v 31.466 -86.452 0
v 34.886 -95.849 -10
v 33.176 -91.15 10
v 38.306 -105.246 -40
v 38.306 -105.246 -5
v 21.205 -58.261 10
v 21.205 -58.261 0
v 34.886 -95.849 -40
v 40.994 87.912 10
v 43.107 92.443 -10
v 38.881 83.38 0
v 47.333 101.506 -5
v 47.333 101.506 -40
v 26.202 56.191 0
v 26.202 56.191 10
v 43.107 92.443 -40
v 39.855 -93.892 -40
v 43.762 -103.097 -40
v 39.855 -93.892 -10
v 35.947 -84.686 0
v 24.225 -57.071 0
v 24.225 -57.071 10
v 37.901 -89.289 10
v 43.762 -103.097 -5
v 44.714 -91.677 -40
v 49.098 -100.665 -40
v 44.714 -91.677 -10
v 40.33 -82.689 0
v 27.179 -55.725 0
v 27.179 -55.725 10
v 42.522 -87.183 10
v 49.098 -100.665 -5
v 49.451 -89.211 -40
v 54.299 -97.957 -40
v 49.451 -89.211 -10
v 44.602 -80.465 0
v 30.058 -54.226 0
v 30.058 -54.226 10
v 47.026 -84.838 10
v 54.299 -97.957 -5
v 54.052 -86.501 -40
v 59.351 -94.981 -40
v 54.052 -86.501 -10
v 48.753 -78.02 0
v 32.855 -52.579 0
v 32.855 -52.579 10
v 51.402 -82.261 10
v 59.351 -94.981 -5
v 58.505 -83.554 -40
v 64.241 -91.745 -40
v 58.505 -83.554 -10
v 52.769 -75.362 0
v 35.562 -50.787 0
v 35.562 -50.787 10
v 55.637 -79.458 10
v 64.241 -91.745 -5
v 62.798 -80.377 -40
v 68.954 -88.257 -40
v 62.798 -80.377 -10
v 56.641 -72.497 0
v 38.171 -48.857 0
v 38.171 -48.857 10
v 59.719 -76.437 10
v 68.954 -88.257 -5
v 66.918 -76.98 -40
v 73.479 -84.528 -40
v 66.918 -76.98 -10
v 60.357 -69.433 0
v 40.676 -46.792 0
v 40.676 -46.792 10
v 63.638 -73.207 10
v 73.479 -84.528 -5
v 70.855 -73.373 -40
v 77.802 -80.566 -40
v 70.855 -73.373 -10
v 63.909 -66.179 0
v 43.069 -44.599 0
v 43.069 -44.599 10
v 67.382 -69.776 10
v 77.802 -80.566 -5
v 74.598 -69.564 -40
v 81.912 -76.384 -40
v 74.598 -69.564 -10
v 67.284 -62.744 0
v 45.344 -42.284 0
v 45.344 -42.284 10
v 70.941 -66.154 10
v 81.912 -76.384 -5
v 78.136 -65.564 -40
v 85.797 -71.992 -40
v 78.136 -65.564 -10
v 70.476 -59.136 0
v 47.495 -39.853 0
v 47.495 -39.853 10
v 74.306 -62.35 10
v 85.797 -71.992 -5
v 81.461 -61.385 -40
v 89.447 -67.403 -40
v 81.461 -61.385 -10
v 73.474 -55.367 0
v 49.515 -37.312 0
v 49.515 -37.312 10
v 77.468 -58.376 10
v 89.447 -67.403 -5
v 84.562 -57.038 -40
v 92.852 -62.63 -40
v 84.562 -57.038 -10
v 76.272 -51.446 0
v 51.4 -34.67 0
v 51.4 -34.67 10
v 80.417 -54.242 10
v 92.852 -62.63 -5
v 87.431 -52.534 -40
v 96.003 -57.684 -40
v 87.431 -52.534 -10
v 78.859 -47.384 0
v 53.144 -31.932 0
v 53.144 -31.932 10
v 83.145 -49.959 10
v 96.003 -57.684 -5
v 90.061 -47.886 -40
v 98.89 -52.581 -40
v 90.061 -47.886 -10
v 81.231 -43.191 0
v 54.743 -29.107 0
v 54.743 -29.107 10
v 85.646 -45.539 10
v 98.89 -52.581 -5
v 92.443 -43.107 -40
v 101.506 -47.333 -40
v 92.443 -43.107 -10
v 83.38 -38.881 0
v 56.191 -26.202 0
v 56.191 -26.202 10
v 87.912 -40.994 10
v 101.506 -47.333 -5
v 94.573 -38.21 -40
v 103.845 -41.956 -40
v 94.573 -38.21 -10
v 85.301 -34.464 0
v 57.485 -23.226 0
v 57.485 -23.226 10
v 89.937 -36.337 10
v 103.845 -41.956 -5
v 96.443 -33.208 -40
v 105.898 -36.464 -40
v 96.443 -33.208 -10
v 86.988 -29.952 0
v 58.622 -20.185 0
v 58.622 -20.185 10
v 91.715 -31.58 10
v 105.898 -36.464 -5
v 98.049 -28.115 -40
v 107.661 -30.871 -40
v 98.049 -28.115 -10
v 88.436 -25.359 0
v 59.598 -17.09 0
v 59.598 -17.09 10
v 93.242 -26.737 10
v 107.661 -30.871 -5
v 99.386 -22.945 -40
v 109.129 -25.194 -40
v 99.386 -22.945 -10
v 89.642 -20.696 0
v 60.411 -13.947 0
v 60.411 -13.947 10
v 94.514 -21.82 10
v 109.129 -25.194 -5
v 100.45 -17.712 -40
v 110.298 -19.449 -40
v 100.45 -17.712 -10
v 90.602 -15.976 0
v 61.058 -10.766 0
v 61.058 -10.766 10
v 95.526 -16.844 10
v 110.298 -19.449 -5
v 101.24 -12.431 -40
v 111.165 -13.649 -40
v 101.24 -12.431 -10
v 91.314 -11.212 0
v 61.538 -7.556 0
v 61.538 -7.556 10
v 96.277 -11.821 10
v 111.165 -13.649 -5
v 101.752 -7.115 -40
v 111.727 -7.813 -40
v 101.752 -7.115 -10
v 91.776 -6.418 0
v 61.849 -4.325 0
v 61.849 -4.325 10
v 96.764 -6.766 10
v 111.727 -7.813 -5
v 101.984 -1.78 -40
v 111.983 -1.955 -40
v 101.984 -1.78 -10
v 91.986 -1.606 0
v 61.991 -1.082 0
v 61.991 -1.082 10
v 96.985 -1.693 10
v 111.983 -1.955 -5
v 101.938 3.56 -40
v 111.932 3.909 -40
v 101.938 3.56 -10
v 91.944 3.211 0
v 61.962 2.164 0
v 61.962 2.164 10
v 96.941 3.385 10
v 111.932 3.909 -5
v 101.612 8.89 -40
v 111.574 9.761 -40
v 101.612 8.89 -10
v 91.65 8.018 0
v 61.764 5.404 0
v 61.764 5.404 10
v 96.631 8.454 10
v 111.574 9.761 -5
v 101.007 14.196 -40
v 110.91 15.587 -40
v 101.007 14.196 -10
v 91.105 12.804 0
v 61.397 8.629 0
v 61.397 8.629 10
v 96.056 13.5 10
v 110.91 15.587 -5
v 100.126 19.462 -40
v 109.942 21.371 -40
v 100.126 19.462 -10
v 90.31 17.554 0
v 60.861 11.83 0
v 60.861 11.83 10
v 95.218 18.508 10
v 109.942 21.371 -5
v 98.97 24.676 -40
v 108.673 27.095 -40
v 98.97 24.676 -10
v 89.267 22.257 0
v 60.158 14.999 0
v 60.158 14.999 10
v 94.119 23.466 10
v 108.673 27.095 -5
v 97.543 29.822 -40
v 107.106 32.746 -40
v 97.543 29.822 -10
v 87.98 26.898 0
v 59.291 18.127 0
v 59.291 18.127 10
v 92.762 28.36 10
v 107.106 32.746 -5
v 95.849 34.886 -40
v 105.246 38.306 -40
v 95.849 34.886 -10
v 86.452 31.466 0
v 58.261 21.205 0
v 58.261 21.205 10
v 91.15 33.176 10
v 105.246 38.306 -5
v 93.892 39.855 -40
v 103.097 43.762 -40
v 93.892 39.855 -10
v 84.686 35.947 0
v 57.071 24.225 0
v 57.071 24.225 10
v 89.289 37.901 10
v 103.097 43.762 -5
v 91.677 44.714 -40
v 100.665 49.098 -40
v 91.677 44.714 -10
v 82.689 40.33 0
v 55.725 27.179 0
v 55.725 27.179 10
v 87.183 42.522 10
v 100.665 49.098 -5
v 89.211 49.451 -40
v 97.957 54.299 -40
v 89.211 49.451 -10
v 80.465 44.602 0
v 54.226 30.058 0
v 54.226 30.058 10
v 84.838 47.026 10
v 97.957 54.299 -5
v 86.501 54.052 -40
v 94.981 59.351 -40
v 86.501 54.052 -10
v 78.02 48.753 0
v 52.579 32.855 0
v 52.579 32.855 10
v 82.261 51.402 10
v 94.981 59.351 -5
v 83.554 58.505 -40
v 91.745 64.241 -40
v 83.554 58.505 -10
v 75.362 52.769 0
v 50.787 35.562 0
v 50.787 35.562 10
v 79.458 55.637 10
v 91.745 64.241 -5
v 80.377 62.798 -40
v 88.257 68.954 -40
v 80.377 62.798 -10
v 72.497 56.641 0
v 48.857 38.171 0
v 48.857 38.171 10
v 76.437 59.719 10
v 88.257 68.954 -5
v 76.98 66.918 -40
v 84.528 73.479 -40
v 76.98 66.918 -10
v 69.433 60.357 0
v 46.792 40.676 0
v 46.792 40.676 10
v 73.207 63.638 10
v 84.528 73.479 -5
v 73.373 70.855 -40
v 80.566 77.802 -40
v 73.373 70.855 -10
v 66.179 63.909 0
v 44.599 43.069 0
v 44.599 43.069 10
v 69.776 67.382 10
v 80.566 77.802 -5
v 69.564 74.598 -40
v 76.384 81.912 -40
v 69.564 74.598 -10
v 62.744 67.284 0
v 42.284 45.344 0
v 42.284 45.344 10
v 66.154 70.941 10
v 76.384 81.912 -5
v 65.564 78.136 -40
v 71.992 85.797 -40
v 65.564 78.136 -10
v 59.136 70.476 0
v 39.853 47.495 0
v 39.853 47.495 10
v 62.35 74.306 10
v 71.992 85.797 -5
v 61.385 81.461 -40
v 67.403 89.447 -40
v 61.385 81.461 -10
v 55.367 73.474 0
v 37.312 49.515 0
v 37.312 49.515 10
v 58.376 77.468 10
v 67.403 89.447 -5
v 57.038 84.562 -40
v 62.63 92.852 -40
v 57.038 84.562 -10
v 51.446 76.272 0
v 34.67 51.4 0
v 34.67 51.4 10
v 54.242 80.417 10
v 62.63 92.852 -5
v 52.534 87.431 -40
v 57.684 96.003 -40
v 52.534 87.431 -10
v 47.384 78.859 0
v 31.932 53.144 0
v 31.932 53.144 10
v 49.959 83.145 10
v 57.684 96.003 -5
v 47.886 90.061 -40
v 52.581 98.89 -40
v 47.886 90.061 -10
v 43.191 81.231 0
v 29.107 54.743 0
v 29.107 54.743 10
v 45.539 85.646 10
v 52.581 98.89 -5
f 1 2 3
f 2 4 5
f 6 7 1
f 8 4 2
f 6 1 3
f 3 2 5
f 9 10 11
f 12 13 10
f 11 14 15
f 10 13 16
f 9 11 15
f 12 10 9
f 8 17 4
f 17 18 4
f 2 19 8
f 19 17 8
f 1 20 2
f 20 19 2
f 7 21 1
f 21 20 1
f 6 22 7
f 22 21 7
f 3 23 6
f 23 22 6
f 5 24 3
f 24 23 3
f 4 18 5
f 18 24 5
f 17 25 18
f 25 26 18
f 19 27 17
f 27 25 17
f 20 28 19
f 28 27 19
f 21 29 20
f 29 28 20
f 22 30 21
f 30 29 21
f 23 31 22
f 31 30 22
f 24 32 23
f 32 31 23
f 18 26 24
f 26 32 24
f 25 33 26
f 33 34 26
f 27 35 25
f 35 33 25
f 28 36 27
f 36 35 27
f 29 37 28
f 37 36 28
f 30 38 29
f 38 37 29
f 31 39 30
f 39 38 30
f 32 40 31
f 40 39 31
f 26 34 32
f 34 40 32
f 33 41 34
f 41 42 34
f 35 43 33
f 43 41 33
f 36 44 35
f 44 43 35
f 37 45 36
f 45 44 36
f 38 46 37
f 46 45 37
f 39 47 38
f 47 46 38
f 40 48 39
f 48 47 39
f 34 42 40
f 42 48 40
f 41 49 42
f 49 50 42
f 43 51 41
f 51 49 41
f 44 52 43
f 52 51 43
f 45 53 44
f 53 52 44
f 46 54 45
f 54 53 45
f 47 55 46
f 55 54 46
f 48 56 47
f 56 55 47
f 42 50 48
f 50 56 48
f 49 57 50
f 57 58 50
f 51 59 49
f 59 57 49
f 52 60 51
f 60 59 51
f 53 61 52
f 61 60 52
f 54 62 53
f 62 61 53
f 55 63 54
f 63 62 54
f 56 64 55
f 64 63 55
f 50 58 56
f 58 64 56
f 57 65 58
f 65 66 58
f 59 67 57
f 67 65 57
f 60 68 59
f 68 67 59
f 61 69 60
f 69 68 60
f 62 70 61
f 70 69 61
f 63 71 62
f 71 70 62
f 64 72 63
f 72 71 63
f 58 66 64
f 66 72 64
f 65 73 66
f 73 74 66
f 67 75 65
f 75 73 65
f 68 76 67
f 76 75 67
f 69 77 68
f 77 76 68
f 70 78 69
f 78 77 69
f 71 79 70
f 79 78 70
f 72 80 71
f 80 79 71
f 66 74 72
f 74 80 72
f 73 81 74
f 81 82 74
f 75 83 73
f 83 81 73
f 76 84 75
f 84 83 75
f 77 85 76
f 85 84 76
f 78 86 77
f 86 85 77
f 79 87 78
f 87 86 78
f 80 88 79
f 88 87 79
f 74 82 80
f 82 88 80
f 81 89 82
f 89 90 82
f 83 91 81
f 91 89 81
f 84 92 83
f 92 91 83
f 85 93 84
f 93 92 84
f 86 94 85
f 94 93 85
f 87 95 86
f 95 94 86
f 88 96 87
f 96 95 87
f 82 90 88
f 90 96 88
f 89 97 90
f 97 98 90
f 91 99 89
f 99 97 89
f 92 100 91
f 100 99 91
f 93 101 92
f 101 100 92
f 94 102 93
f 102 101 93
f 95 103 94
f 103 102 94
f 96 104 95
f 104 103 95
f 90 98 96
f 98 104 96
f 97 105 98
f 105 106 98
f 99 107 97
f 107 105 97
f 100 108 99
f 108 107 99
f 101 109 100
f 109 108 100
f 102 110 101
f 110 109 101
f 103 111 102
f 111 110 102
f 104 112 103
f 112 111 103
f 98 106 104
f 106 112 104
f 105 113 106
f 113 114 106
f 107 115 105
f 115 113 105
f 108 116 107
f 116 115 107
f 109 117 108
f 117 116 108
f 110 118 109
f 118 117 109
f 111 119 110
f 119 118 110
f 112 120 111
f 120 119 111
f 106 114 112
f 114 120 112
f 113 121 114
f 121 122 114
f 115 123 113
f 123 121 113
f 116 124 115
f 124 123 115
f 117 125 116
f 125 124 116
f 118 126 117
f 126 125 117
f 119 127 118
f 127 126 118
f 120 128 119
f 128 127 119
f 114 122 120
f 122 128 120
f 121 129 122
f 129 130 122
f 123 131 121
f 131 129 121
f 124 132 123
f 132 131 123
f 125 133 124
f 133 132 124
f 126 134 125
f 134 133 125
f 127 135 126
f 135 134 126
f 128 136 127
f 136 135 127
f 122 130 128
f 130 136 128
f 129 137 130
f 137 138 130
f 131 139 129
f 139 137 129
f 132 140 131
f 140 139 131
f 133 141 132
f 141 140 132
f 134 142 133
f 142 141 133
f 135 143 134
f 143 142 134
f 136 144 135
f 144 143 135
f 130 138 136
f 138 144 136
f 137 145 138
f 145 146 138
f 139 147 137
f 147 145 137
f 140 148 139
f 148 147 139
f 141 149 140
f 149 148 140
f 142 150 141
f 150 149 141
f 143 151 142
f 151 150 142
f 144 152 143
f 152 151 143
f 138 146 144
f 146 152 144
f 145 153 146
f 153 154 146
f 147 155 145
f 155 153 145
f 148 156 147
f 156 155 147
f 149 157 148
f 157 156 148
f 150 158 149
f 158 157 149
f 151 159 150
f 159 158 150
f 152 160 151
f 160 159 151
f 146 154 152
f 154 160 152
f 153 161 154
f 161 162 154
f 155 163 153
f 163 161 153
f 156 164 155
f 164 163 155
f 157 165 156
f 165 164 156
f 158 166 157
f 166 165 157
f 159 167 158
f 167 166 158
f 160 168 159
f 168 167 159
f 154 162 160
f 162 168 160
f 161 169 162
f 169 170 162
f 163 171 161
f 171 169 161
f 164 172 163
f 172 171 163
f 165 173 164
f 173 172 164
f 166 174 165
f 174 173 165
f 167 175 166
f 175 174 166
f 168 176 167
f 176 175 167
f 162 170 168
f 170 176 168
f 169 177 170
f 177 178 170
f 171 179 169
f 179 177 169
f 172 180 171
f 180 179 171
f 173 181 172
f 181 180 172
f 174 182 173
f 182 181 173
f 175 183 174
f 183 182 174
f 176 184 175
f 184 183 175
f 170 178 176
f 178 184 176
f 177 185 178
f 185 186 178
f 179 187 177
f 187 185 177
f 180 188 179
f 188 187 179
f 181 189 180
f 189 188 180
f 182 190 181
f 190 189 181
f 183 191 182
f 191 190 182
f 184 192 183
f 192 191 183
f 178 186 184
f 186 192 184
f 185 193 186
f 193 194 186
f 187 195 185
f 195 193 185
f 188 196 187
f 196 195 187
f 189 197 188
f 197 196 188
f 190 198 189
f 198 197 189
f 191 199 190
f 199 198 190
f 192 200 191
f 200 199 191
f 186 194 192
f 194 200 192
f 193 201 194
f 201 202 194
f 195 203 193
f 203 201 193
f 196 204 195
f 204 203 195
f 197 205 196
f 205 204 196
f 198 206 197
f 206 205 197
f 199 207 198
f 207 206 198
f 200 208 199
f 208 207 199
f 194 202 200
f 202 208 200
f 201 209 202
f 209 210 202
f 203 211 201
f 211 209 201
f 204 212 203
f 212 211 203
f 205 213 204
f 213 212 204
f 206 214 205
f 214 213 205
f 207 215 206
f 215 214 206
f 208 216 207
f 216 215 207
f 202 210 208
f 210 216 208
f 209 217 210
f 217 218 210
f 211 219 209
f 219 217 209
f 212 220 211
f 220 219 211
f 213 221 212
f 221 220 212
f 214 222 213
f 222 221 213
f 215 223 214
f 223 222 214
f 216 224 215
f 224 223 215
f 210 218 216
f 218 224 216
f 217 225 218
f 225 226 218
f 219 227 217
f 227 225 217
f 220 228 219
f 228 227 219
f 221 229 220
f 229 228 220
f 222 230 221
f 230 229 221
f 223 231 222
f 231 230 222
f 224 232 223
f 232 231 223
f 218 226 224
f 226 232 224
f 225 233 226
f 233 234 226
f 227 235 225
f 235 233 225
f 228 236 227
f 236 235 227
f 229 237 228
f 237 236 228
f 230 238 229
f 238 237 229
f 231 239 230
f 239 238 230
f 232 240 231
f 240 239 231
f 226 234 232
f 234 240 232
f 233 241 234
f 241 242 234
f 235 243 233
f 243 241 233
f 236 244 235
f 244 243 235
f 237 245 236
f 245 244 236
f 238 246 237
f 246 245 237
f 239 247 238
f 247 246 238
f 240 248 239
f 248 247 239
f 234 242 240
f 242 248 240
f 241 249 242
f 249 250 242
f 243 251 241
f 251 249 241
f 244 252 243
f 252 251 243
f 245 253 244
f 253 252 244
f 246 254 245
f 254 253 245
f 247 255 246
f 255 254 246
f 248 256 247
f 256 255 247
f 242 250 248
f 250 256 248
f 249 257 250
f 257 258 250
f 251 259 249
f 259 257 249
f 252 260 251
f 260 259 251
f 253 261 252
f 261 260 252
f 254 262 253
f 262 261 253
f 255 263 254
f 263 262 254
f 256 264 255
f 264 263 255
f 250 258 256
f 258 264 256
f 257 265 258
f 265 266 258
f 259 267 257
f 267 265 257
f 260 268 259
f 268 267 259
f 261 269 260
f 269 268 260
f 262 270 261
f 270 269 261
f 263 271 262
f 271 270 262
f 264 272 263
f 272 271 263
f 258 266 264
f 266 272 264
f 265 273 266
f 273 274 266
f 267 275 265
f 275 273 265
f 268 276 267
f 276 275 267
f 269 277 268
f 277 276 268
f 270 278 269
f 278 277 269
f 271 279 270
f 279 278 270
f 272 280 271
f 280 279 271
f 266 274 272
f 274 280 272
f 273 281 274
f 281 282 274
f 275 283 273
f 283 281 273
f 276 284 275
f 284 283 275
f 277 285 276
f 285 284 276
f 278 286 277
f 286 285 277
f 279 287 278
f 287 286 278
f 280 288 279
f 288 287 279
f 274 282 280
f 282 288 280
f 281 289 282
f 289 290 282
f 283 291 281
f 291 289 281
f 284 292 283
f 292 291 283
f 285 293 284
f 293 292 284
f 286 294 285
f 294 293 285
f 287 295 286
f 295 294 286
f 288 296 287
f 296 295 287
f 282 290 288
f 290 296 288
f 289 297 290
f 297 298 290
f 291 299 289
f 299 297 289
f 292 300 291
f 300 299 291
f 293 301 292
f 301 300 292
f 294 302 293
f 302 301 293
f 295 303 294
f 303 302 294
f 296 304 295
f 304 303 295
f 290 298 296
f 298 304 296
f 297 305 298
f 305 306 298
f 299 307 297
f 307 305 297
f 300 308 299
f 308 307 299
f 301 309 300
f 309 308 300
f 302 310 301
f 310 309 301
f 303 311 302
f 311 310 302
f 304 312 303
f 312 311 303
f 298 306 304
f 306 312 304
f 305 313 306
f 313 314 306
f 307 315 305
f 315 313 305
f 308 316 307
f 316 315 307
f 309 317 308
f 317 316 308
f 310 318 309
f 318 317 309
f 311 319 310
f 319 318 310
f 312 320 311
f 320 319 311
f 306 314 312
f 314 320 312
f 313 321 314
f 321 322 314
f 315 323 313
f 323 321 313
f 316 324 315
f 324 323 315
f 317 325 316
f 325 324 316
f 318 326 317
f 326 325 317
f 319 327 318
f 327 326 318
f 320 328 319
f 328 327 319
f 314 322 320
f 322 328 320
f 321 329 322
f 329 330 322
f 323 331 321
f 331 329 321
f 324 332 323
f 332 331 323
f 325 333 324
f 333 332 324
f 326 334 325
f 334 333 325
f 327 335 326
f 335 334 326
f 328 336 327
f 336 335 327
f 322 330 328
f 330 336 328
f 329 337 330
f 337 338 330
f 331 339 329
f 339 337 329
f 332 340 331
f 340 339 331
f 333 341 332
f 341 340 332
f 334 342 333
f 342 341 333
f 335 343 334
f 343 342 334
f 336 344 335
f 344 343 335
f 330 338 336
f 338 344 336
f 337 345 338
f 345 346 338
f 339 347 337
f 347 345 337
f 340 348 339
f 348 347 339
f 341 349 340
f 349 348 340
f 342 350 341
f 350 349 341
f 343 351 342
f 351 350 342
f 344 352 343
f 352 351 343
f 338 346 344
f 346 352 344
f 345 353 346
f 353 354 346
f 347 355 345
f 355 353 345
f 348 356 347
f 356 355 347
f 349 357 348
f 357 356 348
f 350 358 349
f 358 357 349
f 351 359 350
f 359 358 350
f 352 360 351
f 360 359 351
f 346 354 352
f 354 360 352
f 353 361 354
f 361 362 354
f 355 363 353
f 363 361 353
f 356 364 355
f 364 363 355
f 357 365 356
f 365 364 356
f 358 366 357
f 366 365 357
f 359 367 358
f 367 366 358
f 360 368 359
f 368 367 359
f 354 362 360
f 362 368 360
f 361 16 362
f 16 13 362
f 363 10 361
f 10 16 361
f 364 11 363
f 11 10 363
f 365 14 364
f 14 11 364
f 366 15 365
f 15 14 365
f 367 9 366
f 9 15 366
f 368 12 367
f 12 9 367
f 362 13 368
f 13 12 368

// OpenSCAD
// file: ieq30pro-dec-head.scad
// Defines the moving portion of the DEC axis,
// which has the dovetail saddle for holding a
// telescope atop the mount.

// dec_head accepts up to two children:
// 1) The first is centered on the plane of the base
//    of the dec_head, with z=0 and the clutch is
//    on the x-axis at y=0. Suitable for
//    weatherproofing items.
// 2) The second is placed into the plane of the
//    dovetail saddle, with the x-axis aligned with
//    the long direction of a dovetail.
//    Suitable for the telescope.

// Units: mm

use <chamfer.scad>
include <ieq30pro-dimensions.scad>
use <ieq30pro-clutch.scad>

dec_head() {
  translate([0,0,0]) #cube(10, center=true);
  translate([0,0,0]) #cube(10, center=false);
};

module dec_head() {
  base_r = dec_head_base_diam / 2;
  inner_r = dec_head_diam1 / 2;
  color(cast_iron_color) {
    difference() {
      union() {
        cylinder(h=dec_head_base_height, r=base_r);
      
        translate([0,0,dec_head_base_height])
          linear_extrude(
              height=dec_head_height,
              scale=dec_head_scale)
            dec_head_extrusion_profile();
      };
      dec_saddle_inverse();
      dec_slot_inverse();
      dec_head_clamp_screw_holes();
    };
  };

  translate([inner_r-2,0,0])
    rotate([90,0,90])
      clutch();
  
  echo("dec_head has", $children, "children");
  if ($children > 0) {
    children(0);
  }
  if ($children > 1) {
    raise_by = dec_head_base_height + dec_head_height
        - dec_saddle_depth + 0.01;
    translate([0,0,raise_by])
      rotate([0, 0, 90])
        children(1);
  }
}

module dec_saddle_inverse() {
  hw1 = dovetail_width / 2;
  hw2 = dec_saddle_width2 / 2;
  hw3 = dec_saddle_width1 / 2;
  dw = dec_saddle_width2 - dec_saddle_width1;
  raise_by = dec_head_base_height + dec_head_height
      - dec_saddle_depth + 0.01;
  
  translate([0,0,raise_by])
    rotate([90, 0, 0])
      translate([0,0,-dec_head_base_diam])
        linear_extrude(height=dec_head_base_diam*2)
          // Profile of a dovetail plate on one side, but
          // vertical on the other wide (where the mount
          // has screws to secure a dovetail plate).
          polygon([
            [0,0],
            [hw1, 0],
            [hw1 - dw, dec_saddle_depth],
            [-hw3, dec_saddle_depth],
            [-hw3, 0]
          ]);
}

module dec_slot_inverse() {
  r = dec_slot_corner_radius;
  hw = dec_slot_width / 2 - r;
  hl = dec_slot_len / 2 - r;
  raise_by = dec_head_base_height + dec_head_height
      - dec_saddle_depth + 0.01;

  translate([0,0,raise_by])
  linear_extrude(height=dec_saddle_depth)
    hull() {
      translate([hw,hl]) circle(r=r);
      translate([hw,-hl]) circle(r=r);
      translate([-hw,-hl]) circle(r=r);
      translate([-hw,hl]) circle(r=r);
    };
}

module dec_head_extrusion_profile() {
  s = dec_head_square/2;
  intersection() {
    union() {
      circle(r=dec_head_diam1/2);
      translate([-s, -s])
        square(size=[s, dec_head_square]);
    };
    circle(r=dec_head_base_diam/2);
  };
}

module dec_head_clamp_screw_holes() {
  raise_by = dec_head_base_height + dec_head_height
      - dec_head_clamp_screw_depth;
  y = dec_head_clamp_screw_spacing / 2;
  translate([0,y,raise_by])
    rotate([0, -90, 0])
      cylinder(h=dec_head_base_diam/2,
               r=dec_head_clamp_screw_diam/2);

  translate([0,-y,raise_by])
    rotate([0, -90, 0])
      cylinder(h=dec_head_base_diam/2,
               r=dec_head_clamp_screw_diam/2);
}
// file: ieq30pro-clutch.scad
include <ieq30pro-dimensions.scad>

clutch();

module clutch(handle_angle=0) {
  r = clutch_base_diameter/2;
  raise_by = clutch_base_height - r;
  translate([0,raise_by,0]) {
    // Extrusion out of the base
    color(cast_iron_color)
      clutch_base();

    // Handle, shaft and screw.
    translate([0,0,clutch_screw_length])
      rotate([0, 0, handle_angle])
        clutch_handle();
  };
};

module clutch_base(handle_angle) {
  linear_extrude(height=clutch_extrusion)
    union() {
      r = clutch_base_diameter/2;
      circle(r=r);

      w1 = clutch_flange_width;
      h1 = clutch_flange_height;
      w2 = clutch_base_diameter;
      h2 = clutch_base_height - r;

      translate([-w1/2, -h2, 0])
        square([w1,h1]);

      translate([-w2/2, -h2, 0])
        square([w2,h2]);
    };
};

module clutch_handle() {
  color(plastic_color) {
    radius = clutch_handle_base_diam / 2;
    hw = clutch_handle_width / 2;
    linear_extrude(height=clutch_handle_depth1)
      union() {
        circle(r=radius);
        translate([0,-hw])
          square([clutch_handle_length,
                  clutch_handle_width]);
      };

    len2 = clutch_handle_length - radius;
    drop = clutch_handle_depth2-clutch_handle_depth1;
    translate([0,0,-drop])
      linear_extrude(height=clutch_handle_depth2)
        translate([radius,-hw])
          square([len2, clutch_handle_width]);
  };
  
  // The screw head, mostly for decoration.
  color("silver") {
    r = clutch_screw_head_diam/2;
    w = r * 1.4;
    h = w/5;
    translate([0,0,clutch_handle_depth1])
      linear_extrude(height=1)
        difference() {
          circle(r=r);
          square([w,h], center=true);
          square([h,w], center=true);
        }
  };

  // The shaft that is rotated by the handle,
  // of which a little is visible between the
  // handle and the body of the axis.
  color("gold") {
    r = clutch_screw_head_diam/2;
    h = 10;
    translate([0,0, -(h-1)])
      linear_extrude(height=h)
        circle(r=r);
  }
};
// file: ieq30pro-ra-to-dec.scad
// Defines the moving portion of the RA axis,
// which includes the "non-moving" portion of
// the DEC axis of the iOptron iEQ30 Pro.

// ra_to_dec accepts two children:
// 1) attached to the coordinate frame of the moving
//    RA axis, with the bearing of the RA axis centered
//    on the xy plane at z=0, with positive z being
//    where the moving RA axis is located, and negative
//    z being where the stationary portion of the mount
//    is located.
// 2) attached the the coordinate frame of the moving
//    DEC axis, with the bearing of the DEC axis centered
//    on the xy plane at z=0, with positive z being
//    where the moving DEC axis is located, and negative
//    z being where the motor of the DEC axis is located.
// This allows for adding objects to the model by
// a "use" of this file.

// Units: mm

use <chamfer.scad>
include <ieq30pro-dimensions.scad>
use <ieq30pro-clutch.scad>
use <ieq30pro-dec-head.scad>

ra_and_dec($t * 360) {
  translate([0,0,0]) {
    echo("executing ra_and_dec child 1");
    color("blue")
      sphere(r=10);
  };
  color("red") linear_extrude(height=10) {  
    echo("executing ra_and_dec child 2");
    square(10, center=true);
  };
};

module ra_and_dec(dec_angle=0) {
  raise_dec = dec1_radius + ra1_base_to_dec;
  ra_to_dec();

//  echo("ra_and_dec has", $children, "children");

  translate([0, ra1_radius, raise_dec])
    rotate([-90,0,0])
      dec_body(dec_angle) {
        if ($children > 1) {
//          echo("has at least two children");
          children(1);
        }
      };

  // TODO Change coordinates of ra_and_dec so
  // that it rests on the z=0 plane natively.
  // this will make it easier to add children
  // to both the RA axis base and to the DEC
  // head.
  if ($children > 0) {
//    echo("has at least one child");
    #children(0);
  }
}

module ra_to_dec() {
  h1 = ra1_base_to_dec;
  h2 = 45 - h1;
  fillet_radius = ra1_radius - dec1_radius + 2;

  translate([0,0,h1]) {
    color(cast_iron_color) {
      difference() {
        union() {
          translate([0,0,-h1])
            cylinder(h=h1, r=ra1_radius);
          cylinder(h=h2, r=ra1_radius);
        };
        translate([0,ra1_radius,fillet_radius])
          rotate([90,0,0]) {
            translate([-ra1_radius,0,0])
              cylinder(h=ra1_diam, r=fillet_radius);
            translate([ra1_radius,0,0])
              cylinder(h=ra1_diam, r=fillet_radius);
          };
      };
    };
    translate([-(ra1_radius-5), 0, -h1])
      rotate([90,0,270])
      clutch();
  };
}

module dec_body(dec_angle=0) {
  rotate([180, 0, 0])
    dec_body_helper();
  translate([0, 0, dec2_len])
    rotate([0, 0, dec_angle])
      children();
}

module dec_body_helper() {
  total_dec_len =
    dec1_len + dec2_len + cw_cap_height +
    cw_cap_bevel_height;
  difference() {
    union() {
      color(cast_iron_color) {
        cylinder(h=dec1_len, r=dec1_radius);
        translate([0,0, -dec2_len])
          cylinder(h=dec2_len, r=dec2_radius);
      };
      // Cap on the end where the CW shaft is
      // screwed into the DEC body.
      color(plastic_color)
        translate([0, 0, dec1_len])
          union() {
            cylinder(h=cw_cap_height, r=dec1_radius);
            translate([0, 0, cw_cap_height])
              rotate_extrude()
                polygon([
                  [cw_cs_radius,0],
                  [dec1_radius,0],
                  [dec1_radius-10, cw_cap_bevel_height],
                  [cw_cs_radius,cw_cap_bevel_height]]);
          };
      dec_motor();
    };
    color(cast_iron_color)
      translate([0,0, -dec2_len-1])
        cylinder(h=total_dec_len+2,
                r=cw_thread_radius);
  };
}

module dec_motor() {
  w=dec_motor_w;
  h=dec_motor_h;
  z=dec_motor_z;
  
  translate([-w/2, dec_motor_z_offset, h - dec2_len + 0.01])
    rotate([-90,0,0]) {
      color(plastic_color) {
        intersection() {
          chamferCube(w,h,z,chamferHeight=12,
            chamferX=[0,0,1,0], chamferY=[0,0,0,0],
            chamferZ=[0,0,0,0]);
          chamferCube(w,h,z,chamferHeight=5,
            chamferX=[0,0,0,1], chamferY=[0,1,1,0],
            chamferZ=[0,0,0,0]);
        }
      };

      color("white") 
        translate([w/2, h/3,z])
          linear_extrude(height = 0.1)
            ioptron_logo();    
    };
}

module ioptron_logo() {
  font = "Liberation Sans";
  italic_font = str(font, ":style=Italic");
  text("iOptron", size=12, font=italic_font,
       halign="center", valign="bottom", $fn=16);
  translate([0, -4, 0])
    text("iEQ30-Pro", size=6, font=font,
         halign="center", valign="top", $fn=16);
}
// file: ieq30pro-dimensions.scad
// Units: mm

cast_iron_color = "bisque";//"gray";//"beige";
plastic_color = [0.1,0.1,0.1];
bearing_color = "silver";

////////////////////////////////////////////////////
// Diameter of dec body at bottom, near CW shaft.
dec1_diam = 67.66;
dec1_radius = dec1_diam / 2;

// Length of declination cylinder with dec1_diam.
dec1_len = 131.9;

// The black cap and the bottom of the dec body, where
// the counterweight shaft is attached.
cw_cap_height = 10;
cw_cap_bevel_height = 5;

// There is a countersink in the bottom of the DEC
// body to allow for the counterweight shaft.
cw_cs_diam = 23;
cw_cs_radius = cw_cs_diam / 2;

cw_thread_diam = 16;
cw_thread_radius = cw_thread_diam / 2;

////////////////////////////////////////////////////
// Diameter of the motor end of the DEC body.

dec2_diam = 97.4;  // +/- 0.3mm.
dec2_radius = dec2_diam / 2;
dec2_len = 25.4;

////////////////////////////////////////////////////
// Declination motor cover size.
dec_motor_w = 85.4;  // left-right on face with logo.
dec_motor_h = 68.4;  // up-down on face with logo.
dec_motor_z = 62.4;

// Distance away from bearing plane.
dec_motor_setback = 0.01;

////////////////////////////////////////////////////
// Min dist from face with logo to dec1 cylinder.
dec_motor_z2 = 42;
dec_motor_z_offset =
  dec1_radius + dec_motor_z2 - dec_motor_z;

////////////////////////////////////////////////////
// RA axis diameter at the bearing, where the moving
// and stationary parts meet.
ra1_diam = 120;  // +/- 0.3mm.
ra1_radius = ra1_diam / 2;

////////////////////////////////////////////////////
// Distance from edge of RA bearing to outside of
// DEC body, center of DEC axis, and outside of
// DEC gear cover.
ra1_base_to_dec = 21.5;
ra1_base_to_dec_center = ra1_base_to_dec + dec1_radius;
ra1_base_to_dec_gear_cover =
    ra1_base_to_dec_center - dec2_radius;

////////////////////////////////////////////////////
// Dimensions for the non-moving portion of the
// mount. Much less detail is needed here, so only
// a few objects are modeled.

// RA bearing cover diameter and length.
ra2_radius = ra1_radius;
ra2_len = 24.5;

// RA body becomes narrower.
ra3_radius = ra2_radius - 19.86;
ra3_len = 17.13;

ra_bearing_gap = 0.6;

////////////////////////////////////////////////////
// Dimensions for the DEC and RA clutches. They are
// mostly identical, except that the DEC clutch
// sticks out farther from the DEC head and its
// screw axis is a bit closer to the bearing gap.
// The model won't include the draft angle of the
// handle.

clutch_flange_width = 28;
clutch_flange_height = 5.75;
clutch_extrusion = 9.2; // from casting diam.
clutch_base_diameter = 18;
clutch_base_height = 19.75;
clutch_screw_length = 10.75; // casting to head.
clutch_screw_head_diam = 8.2;
clutch_handle_base_diam = 20.6;
clutch_handle_length = 38.9; // screw center to end.
clutch_handle_width = 8.75; // At widest.
clutch_handle_depth1 = 10.2;
clutch_handle_depth2 = 13.7;

////////////////////////////////////////////////////
// Dimensions for the DEC head (i.e. the part
// rotated by the DEC motor, which has the dove tail
// saddle for holding the telescope).

dec_head_base_diam = 97.66;
dec_head_base_radius = dec_head_base_diam / 2;
dec_head_base_height = 3.83;
dec_head_height = 46.3;  // Above base.
dec_head_diam1 = 89.5;  // At top of base.
dec_head_diam2 = 86.9;  // At top, due to draft angle.
dec_head_scale = dec_head_diam2 / dec_head_diam1;
dec_saddle_depth = 13.8;
dec_saddle_width1 = 43.95; // At top of saddle
dec_saddle_width2 = 46.66; // At bottom of saddle
dovetail_width = 45.25;
dec_slot_corner_radius = 5;
dec_slot_width = 60.4;
dec_slot_len = 25.6;
dec_head_square = 76;
dec_head_clamp_screw_diam = 7.8;  // OD
dec_head_clamp_screw_depth = 6.66;  // Top to centerline.
dec_head_clamp_screw_spacing = 44.4; 

dec_bearing_gap = ra_bearing_gap;

// Maximum distance from DEC head
// out to the tip of the handle (i.e.
// how much you'd have to expand the
// radius of the DEC head to fully
// engulf the handle at its existing
// location.
dec_clutch_handle_max_height = 32;


dec_saddle_height =
    dec_head_base_height +
    dec_head_height - dec_saddle_depth;

/////////////////////////////////////////////
// Computed values for the DEC bearing.

// Can't go too large because otherwise we'll
// hit the RA motor cover.
dec_cover_max_radius =
    dec2_radius + ra1_base_to_dec_gear_cover;
dec_cover_max_diam = dec_cover_max_radius * 2;

// Compute the angle of the circle of the
// DEC gear cover subtended by the motor
// cover. See:
//  https://en.wikipedia.org/wiki/Circular_segment
dec_motor_cover_angle = 2 * asin(dec_motor_w/dec2_diam);

// This needs to be adjusted for each site.
mount_latitude = 42;
// file: chamfer.scad
// From: https://raw.githubusercontent.com/SebiTimeWaster/Chamfers-for-OpenSCAD/master/Chamfer.scad

/**
  *  The MIT License (MIT)
  *
  *  "Chamfers for OpenSCAD" v0.4 Copyright (c) 2016 SebiTimeWaster
  *
  *  Permission is hereby granted, free of charge, to any person obtaining a copy
  *  of this software and associated documentation files (the "Software"), to deal
  *  in the Software without restriction, including without limitation the rights
  *  to use, copy, modify, merge, publish, distribute, sublicense, and/or sell
  *  copies of the Software, and to permit persons to whom the Software is
  *  furnished to do so, subject to the following conditions:
  *
  *  The above copyright notice and this permission notice shall be included in all
  *  copies or substantial portions of the Software.
  *
  *  THE SOFTWARE IS PROVIDED "AS IS", WITHOUT WARRANTY OF ANY KIND, EXPRESS OR
  *  IMPLIED, INCLUDING BUT NOT LIMITED TO THE WARRANTIES OF MERCHANTABILITY,
  *  FITNESS FOR A PARTICULAR PURPOSE AND NONINFRINGEMENT. IN NO EVENT SHALL THE
  *  AUTHORS OR COPYRIGHT HOLDERS BE LIABLE FOR ANY CLAIM, DAMAGES OR OTHER
  *  LIABILITY, WHETHER IN AN ACTION OF CONTRACT, TORT OR OTHERWISE, ARISING FROM,
  *  OUT OF OR IN CONNECTION WITH THE SOFTWARE OR THE USE OR OTHER DEALINGS IN THE
  *  SOFTWARE.
  */

/**
  * chamferCube returns an cube with 45° chamfers on the edges of the
  * cube. The chamfers are diectly printable on Fused deposition
  * modelling (FDM) printers without support structures.
  *
  * @param  sizeX          The size of the cube along the x axis
  * @param  sizeY          The size of the cube along the y axis
  * @param  sizeZ          The size of the cube along the z axis
  * @param  chamferHeight  The "height" of the chamfers as seen from
  *                        one of the dimensional planes (The real
  *                        width is side c in a right angled triangle)
  * @param  chamferX       Which chamfers to render along the x axis
  *                        in clockwise order starting from the zero
  *                        point, as seen from "Left view" (Ctrl + 6)
  * @param  chamferY       Which chamfers to render along the y axis
  *                        in clockwise order starting from the zero
  *                        point, as seen from "Front view" (Ctrl + 8)
  * @param  chamferZ       Which chamfers to render along the z axis
  *                        in clockwise order starting from the zero
  *                        point, as seen from "Bottom view" (Ctrl + 5)
  */
module chamferCube(sizeX, sizeY, sizeZ, chamferHeight = 1, chamferX = [1, 1, 1, 1], chamferY = [1, 1, 1, 1], chamferZ = [1, 1, 1, 1]) {
    chamferCLength = sqrt(chamferHeight * chamferHeight * 2);
    difference() {
        cube([sizeX, sizeY, sizeZ]);
        for(x = [0 : 3]) {
            chamferSide1 = min(x, 1) - floor(x / 3); // 0 1 1 0
            chamferSide2 = floor(x / 2); // 0 0 1 1
            if(chamferX[x]) {
                translate([-0.1, chamferSide1 * sizeY, -chamferHeight + chamferSide2 * sizeZ])
                rotate([45, 0, 0])
                cube([sizeX + 0.2, chamferCLength, chamferCLength]);
            }
            if(chamferY[x]) {
                translate([-chamferHeight + chamferSide2 * sizeX, -0.1, chamferSide1 * sizeZ])
                rotate([0, 45, 0])
                cube([chamferCLength, sizeY + 0.2, chamferCLength]);
            }
            if(chamferZ[x]) {
                translate([chamferSide1 * sizeX, -chamferHeight + chamferSide2 * sizeY, -0.1])
                rotate([0, 0, 45])
                cube([chamferCLength, chamferCLength, sizeZ + 0.2]);
            }
        }
    }
}

/**
  * chamferCylinder returns an cylinder or cone with 45° chamfers on
  * the edges of the cylinder. The chamfers are diectly printable on
  * Fused deposition modelling (FDM) printers without support structures.
  *
  * @param  height         Height of the cylinder
  * @param  radius         Radius of the cylinder (At the bottom)
  * @param  radius2        Radius of the cylinder (At the top)
  * @param  chamferHeight  The "height" of the chamfer at radius 1 as
  *                        seen from one of the dimensional planes (The 
  *                        real width is side c in a right angled triangle)
  * @param  chamferHeight2 The "height" of the chamfer at radius 2 as
  *                        seen from one of the dimensional planes (The 
  *                        real width is side c in a right angled triangle)
  * @param  angle          The radius of the visible part of a wedge
  *                        starting from the x axis counter-clockwise
  * @param  quality        A circle quality factor where 1.0 is a fairly
  *                        good quality, range from 0.0 to 2.0
  */
module chamferCylinder(height, radius, radius2=undef, chamferHeight = 1, chamferHeight2=undef, angle = 0, quality = -1.0) {
    radius2 = (radius2 == undef) ? radius : radius2;
    chamferHeight2 = (chamferHeight2 == undef) ? chamferHeight : chamferHeight2;
    module cc() {
        if(chamferHeight2 != 0) {
            translate([0, 0, height - abs(chamferHeight2)]) cylinder(abs(chamferHeight2), r1 = radius2, r2 = radius2 - chamferHeight2, $fn = circleSegments(radius2, quality));
        }
        translate([0, 0, abs(chamferHeight)]) cylinder(height - abs(chamferHeight2) - abs(chamferHeight), r1 = radius, r2 = radius2, $fn = circleSegments(max(radius, radius2), quality));
        if(chamferHeight2 != 0) {
            cylinder(abs(chamferHeight), r1 = radius - chamferHeight, r2 = radius, $fn = circleSegments(radius, quality));
        }
    }
    module box(brim = abs(min(chamferHeight2, 0)) + 1) {
        translate([-radius - brim, 0, -brim]) cube([radius * 2 + brim * 2, radius + brim, height + brim * 2]);
    }
    module hcc() {
        intersection() {
            cc();
            box();
        }
    }
    if(angle <= 0 || angle >= 360) cc();
    else {
        if(angle > 180) hcc();
        difference() {
            if(angle <= 180) hcc();
            else rotate([0, 0, 180]) hcc();
            rotate([0, 0, angle]) box(abs(min(chamferHeight2, 0)) + radius);
        }
    }
}

/**
  * circleSegments calculates the number of segments needed to maintain
  * a constant circle quality.
  * If a globalSegementsQuality variable exist it will overwrite the
  * standard quality setting (1.0). Order of usage is:
  * Standard (1.0) <- globalCircleQuality <- Quality parameter
  *
  * @param  r        Radius of the circle
  * @param  quality  A quality factor, where 1.0 is a fairly good
  *                  quality, range from 0.0 to 2.0
  *
  * @return  The number of segments for the circle
  */
function circleSegments(r, quality = -1.0) = (r * PI * 4 + 40) * ((quality >= 0.0) ? quality : globalCircleQuality);

// set global quality to 1.0, can be overridden by user
globalCircleQuality = 1.0;
// file: ioptron-ieq30pro.scad
// Units: mm

use <chamfer.scad>
include <ieq30pro-dimensions.scad>
use <ieq30pro-ra-to-dec.scad>
use <ieq30pro-clutch.scad>

// Global resolution
// Don't generate smaller facets than this many mm.
$fs = 0.5;
// Don't generate larger angles than this many degrees.
$fa = 1;

ioptron_mount($t * 360) {};

module ioptron_mount(ra_angle=0, dec_angle=0) {
  rotate([0, 0, ra_angle])
    translate([0, 0, ra_bearing_gap/2]) {
      ra_and_dec(dec_angle) children();
    };

  ra_bearing();
  
  rotate([180, 0, 0])
    ra_body();
}

module ra_body() {
  // To avoid modeling more of the RA body,
  // we extend the ra3 section longer ... for now.
  ra3_extra_long = ra3_len * 4;
  color(cast_iron_color) {
    cylinder(h=ra2_len, r=ra2_radius);
    translate([0, 0, ra2_len])
      cylinder(h=ra3_extra_long, r=ra3_radius);
  }

  // RA motor/electronics cover dimensions, arranged
  // very much like the DEC motor cover.
  // x is perpendicular to the ground and to the
  // RA axis; y is parallel to the RA axis; z is
  // distance from the RA axis.
  x = 95.1;
  y = 68.5;
  z = 49;   // top of cover to intersection
            //with ra2_diam.
  // Height of top of cover above the ra2_diam.
  ra_cover_height = 24.0;
  ra_z_offset = ra2_radius + ra_cover_height - z;
  
  translate([0,0,0])
    rotate([90,0,0])
      color(plastic_color)
        translate([-x/2, 0.01, ra_z_offset])
          intersection() {
            chamferCube(x,y,z,chamferHeight=12,
              chamferX=[0,0,0,1], chamferY=[0,0,0,0],
              chamferZ=[0,0,0,0]);
            chamferCube(x,y,z,chamferHeight=4,
              chamferX=[0,0,1,0], chamferY=[0,1,1,0],
              chamferZ=[0,0,0,0]);
          };
}

// A little decoration for the model, so that the
// two sides of the RA bearing aren't butted up
// against each other in an unrealistic fashion,
// and to match the way the mount actually looks;
// i.e. there is a very small gap between the two
// sides through which we can see silver colored
// metal.
module ra_bearing() {
  h=3;
  color("silver")
    translate([0, 0, -h/2])
      cylinder(h=h, r=ra2_radius-2);
}
// main file
use <ioptron-ieq30pro.scad>

echo(version=version());

// Global resolution
// Don't generate smaller facets than this many mm.
$fs = 0.1;
// Don't generate larger angles than this many degrees.
$fa = 3;

ra1_radius = 62;

echo("ra1_radius");
echo(ra1_radius);

module ra_bearing_cover() {
//  color("green")
//    rotate_extrude(angle=135)
//        translate([ra1_radius, 0])
//            polygon([
//                [0, 0],
//                [30, 0],
//                [45, -15],
//                [45, -40],
//                [35, -40],
//                [35, -21],
//                [25, -10],
//                [0, -10]]);
  color("blue")
    rotate([0,0, -70])
    rotate_extrude(angle=135)
        translate([ra1_radius, 0])
            polygon([
                [0, 0],
                [30, 0],
                [40, -10],
                [40, -40],
                [50, -40],
                [50, -5],
                [35, 10],
                [0, 10]]);
}

if ($preview) {
  ioptron_mount($t * 360) {
    ra_bearing_cover();
  }
} else {
  ra_bearing_cover();
}

//rotate([0,0,0]) ra_bearing_cover();
                
                

module ra_body_envelope() {
  rotate([180, 0, 0]) {
    for (angle = [0 : 5 : 360])
      rotate([0,0,angle])
        ra_body();
  }
}

//ra_body_envelope();
